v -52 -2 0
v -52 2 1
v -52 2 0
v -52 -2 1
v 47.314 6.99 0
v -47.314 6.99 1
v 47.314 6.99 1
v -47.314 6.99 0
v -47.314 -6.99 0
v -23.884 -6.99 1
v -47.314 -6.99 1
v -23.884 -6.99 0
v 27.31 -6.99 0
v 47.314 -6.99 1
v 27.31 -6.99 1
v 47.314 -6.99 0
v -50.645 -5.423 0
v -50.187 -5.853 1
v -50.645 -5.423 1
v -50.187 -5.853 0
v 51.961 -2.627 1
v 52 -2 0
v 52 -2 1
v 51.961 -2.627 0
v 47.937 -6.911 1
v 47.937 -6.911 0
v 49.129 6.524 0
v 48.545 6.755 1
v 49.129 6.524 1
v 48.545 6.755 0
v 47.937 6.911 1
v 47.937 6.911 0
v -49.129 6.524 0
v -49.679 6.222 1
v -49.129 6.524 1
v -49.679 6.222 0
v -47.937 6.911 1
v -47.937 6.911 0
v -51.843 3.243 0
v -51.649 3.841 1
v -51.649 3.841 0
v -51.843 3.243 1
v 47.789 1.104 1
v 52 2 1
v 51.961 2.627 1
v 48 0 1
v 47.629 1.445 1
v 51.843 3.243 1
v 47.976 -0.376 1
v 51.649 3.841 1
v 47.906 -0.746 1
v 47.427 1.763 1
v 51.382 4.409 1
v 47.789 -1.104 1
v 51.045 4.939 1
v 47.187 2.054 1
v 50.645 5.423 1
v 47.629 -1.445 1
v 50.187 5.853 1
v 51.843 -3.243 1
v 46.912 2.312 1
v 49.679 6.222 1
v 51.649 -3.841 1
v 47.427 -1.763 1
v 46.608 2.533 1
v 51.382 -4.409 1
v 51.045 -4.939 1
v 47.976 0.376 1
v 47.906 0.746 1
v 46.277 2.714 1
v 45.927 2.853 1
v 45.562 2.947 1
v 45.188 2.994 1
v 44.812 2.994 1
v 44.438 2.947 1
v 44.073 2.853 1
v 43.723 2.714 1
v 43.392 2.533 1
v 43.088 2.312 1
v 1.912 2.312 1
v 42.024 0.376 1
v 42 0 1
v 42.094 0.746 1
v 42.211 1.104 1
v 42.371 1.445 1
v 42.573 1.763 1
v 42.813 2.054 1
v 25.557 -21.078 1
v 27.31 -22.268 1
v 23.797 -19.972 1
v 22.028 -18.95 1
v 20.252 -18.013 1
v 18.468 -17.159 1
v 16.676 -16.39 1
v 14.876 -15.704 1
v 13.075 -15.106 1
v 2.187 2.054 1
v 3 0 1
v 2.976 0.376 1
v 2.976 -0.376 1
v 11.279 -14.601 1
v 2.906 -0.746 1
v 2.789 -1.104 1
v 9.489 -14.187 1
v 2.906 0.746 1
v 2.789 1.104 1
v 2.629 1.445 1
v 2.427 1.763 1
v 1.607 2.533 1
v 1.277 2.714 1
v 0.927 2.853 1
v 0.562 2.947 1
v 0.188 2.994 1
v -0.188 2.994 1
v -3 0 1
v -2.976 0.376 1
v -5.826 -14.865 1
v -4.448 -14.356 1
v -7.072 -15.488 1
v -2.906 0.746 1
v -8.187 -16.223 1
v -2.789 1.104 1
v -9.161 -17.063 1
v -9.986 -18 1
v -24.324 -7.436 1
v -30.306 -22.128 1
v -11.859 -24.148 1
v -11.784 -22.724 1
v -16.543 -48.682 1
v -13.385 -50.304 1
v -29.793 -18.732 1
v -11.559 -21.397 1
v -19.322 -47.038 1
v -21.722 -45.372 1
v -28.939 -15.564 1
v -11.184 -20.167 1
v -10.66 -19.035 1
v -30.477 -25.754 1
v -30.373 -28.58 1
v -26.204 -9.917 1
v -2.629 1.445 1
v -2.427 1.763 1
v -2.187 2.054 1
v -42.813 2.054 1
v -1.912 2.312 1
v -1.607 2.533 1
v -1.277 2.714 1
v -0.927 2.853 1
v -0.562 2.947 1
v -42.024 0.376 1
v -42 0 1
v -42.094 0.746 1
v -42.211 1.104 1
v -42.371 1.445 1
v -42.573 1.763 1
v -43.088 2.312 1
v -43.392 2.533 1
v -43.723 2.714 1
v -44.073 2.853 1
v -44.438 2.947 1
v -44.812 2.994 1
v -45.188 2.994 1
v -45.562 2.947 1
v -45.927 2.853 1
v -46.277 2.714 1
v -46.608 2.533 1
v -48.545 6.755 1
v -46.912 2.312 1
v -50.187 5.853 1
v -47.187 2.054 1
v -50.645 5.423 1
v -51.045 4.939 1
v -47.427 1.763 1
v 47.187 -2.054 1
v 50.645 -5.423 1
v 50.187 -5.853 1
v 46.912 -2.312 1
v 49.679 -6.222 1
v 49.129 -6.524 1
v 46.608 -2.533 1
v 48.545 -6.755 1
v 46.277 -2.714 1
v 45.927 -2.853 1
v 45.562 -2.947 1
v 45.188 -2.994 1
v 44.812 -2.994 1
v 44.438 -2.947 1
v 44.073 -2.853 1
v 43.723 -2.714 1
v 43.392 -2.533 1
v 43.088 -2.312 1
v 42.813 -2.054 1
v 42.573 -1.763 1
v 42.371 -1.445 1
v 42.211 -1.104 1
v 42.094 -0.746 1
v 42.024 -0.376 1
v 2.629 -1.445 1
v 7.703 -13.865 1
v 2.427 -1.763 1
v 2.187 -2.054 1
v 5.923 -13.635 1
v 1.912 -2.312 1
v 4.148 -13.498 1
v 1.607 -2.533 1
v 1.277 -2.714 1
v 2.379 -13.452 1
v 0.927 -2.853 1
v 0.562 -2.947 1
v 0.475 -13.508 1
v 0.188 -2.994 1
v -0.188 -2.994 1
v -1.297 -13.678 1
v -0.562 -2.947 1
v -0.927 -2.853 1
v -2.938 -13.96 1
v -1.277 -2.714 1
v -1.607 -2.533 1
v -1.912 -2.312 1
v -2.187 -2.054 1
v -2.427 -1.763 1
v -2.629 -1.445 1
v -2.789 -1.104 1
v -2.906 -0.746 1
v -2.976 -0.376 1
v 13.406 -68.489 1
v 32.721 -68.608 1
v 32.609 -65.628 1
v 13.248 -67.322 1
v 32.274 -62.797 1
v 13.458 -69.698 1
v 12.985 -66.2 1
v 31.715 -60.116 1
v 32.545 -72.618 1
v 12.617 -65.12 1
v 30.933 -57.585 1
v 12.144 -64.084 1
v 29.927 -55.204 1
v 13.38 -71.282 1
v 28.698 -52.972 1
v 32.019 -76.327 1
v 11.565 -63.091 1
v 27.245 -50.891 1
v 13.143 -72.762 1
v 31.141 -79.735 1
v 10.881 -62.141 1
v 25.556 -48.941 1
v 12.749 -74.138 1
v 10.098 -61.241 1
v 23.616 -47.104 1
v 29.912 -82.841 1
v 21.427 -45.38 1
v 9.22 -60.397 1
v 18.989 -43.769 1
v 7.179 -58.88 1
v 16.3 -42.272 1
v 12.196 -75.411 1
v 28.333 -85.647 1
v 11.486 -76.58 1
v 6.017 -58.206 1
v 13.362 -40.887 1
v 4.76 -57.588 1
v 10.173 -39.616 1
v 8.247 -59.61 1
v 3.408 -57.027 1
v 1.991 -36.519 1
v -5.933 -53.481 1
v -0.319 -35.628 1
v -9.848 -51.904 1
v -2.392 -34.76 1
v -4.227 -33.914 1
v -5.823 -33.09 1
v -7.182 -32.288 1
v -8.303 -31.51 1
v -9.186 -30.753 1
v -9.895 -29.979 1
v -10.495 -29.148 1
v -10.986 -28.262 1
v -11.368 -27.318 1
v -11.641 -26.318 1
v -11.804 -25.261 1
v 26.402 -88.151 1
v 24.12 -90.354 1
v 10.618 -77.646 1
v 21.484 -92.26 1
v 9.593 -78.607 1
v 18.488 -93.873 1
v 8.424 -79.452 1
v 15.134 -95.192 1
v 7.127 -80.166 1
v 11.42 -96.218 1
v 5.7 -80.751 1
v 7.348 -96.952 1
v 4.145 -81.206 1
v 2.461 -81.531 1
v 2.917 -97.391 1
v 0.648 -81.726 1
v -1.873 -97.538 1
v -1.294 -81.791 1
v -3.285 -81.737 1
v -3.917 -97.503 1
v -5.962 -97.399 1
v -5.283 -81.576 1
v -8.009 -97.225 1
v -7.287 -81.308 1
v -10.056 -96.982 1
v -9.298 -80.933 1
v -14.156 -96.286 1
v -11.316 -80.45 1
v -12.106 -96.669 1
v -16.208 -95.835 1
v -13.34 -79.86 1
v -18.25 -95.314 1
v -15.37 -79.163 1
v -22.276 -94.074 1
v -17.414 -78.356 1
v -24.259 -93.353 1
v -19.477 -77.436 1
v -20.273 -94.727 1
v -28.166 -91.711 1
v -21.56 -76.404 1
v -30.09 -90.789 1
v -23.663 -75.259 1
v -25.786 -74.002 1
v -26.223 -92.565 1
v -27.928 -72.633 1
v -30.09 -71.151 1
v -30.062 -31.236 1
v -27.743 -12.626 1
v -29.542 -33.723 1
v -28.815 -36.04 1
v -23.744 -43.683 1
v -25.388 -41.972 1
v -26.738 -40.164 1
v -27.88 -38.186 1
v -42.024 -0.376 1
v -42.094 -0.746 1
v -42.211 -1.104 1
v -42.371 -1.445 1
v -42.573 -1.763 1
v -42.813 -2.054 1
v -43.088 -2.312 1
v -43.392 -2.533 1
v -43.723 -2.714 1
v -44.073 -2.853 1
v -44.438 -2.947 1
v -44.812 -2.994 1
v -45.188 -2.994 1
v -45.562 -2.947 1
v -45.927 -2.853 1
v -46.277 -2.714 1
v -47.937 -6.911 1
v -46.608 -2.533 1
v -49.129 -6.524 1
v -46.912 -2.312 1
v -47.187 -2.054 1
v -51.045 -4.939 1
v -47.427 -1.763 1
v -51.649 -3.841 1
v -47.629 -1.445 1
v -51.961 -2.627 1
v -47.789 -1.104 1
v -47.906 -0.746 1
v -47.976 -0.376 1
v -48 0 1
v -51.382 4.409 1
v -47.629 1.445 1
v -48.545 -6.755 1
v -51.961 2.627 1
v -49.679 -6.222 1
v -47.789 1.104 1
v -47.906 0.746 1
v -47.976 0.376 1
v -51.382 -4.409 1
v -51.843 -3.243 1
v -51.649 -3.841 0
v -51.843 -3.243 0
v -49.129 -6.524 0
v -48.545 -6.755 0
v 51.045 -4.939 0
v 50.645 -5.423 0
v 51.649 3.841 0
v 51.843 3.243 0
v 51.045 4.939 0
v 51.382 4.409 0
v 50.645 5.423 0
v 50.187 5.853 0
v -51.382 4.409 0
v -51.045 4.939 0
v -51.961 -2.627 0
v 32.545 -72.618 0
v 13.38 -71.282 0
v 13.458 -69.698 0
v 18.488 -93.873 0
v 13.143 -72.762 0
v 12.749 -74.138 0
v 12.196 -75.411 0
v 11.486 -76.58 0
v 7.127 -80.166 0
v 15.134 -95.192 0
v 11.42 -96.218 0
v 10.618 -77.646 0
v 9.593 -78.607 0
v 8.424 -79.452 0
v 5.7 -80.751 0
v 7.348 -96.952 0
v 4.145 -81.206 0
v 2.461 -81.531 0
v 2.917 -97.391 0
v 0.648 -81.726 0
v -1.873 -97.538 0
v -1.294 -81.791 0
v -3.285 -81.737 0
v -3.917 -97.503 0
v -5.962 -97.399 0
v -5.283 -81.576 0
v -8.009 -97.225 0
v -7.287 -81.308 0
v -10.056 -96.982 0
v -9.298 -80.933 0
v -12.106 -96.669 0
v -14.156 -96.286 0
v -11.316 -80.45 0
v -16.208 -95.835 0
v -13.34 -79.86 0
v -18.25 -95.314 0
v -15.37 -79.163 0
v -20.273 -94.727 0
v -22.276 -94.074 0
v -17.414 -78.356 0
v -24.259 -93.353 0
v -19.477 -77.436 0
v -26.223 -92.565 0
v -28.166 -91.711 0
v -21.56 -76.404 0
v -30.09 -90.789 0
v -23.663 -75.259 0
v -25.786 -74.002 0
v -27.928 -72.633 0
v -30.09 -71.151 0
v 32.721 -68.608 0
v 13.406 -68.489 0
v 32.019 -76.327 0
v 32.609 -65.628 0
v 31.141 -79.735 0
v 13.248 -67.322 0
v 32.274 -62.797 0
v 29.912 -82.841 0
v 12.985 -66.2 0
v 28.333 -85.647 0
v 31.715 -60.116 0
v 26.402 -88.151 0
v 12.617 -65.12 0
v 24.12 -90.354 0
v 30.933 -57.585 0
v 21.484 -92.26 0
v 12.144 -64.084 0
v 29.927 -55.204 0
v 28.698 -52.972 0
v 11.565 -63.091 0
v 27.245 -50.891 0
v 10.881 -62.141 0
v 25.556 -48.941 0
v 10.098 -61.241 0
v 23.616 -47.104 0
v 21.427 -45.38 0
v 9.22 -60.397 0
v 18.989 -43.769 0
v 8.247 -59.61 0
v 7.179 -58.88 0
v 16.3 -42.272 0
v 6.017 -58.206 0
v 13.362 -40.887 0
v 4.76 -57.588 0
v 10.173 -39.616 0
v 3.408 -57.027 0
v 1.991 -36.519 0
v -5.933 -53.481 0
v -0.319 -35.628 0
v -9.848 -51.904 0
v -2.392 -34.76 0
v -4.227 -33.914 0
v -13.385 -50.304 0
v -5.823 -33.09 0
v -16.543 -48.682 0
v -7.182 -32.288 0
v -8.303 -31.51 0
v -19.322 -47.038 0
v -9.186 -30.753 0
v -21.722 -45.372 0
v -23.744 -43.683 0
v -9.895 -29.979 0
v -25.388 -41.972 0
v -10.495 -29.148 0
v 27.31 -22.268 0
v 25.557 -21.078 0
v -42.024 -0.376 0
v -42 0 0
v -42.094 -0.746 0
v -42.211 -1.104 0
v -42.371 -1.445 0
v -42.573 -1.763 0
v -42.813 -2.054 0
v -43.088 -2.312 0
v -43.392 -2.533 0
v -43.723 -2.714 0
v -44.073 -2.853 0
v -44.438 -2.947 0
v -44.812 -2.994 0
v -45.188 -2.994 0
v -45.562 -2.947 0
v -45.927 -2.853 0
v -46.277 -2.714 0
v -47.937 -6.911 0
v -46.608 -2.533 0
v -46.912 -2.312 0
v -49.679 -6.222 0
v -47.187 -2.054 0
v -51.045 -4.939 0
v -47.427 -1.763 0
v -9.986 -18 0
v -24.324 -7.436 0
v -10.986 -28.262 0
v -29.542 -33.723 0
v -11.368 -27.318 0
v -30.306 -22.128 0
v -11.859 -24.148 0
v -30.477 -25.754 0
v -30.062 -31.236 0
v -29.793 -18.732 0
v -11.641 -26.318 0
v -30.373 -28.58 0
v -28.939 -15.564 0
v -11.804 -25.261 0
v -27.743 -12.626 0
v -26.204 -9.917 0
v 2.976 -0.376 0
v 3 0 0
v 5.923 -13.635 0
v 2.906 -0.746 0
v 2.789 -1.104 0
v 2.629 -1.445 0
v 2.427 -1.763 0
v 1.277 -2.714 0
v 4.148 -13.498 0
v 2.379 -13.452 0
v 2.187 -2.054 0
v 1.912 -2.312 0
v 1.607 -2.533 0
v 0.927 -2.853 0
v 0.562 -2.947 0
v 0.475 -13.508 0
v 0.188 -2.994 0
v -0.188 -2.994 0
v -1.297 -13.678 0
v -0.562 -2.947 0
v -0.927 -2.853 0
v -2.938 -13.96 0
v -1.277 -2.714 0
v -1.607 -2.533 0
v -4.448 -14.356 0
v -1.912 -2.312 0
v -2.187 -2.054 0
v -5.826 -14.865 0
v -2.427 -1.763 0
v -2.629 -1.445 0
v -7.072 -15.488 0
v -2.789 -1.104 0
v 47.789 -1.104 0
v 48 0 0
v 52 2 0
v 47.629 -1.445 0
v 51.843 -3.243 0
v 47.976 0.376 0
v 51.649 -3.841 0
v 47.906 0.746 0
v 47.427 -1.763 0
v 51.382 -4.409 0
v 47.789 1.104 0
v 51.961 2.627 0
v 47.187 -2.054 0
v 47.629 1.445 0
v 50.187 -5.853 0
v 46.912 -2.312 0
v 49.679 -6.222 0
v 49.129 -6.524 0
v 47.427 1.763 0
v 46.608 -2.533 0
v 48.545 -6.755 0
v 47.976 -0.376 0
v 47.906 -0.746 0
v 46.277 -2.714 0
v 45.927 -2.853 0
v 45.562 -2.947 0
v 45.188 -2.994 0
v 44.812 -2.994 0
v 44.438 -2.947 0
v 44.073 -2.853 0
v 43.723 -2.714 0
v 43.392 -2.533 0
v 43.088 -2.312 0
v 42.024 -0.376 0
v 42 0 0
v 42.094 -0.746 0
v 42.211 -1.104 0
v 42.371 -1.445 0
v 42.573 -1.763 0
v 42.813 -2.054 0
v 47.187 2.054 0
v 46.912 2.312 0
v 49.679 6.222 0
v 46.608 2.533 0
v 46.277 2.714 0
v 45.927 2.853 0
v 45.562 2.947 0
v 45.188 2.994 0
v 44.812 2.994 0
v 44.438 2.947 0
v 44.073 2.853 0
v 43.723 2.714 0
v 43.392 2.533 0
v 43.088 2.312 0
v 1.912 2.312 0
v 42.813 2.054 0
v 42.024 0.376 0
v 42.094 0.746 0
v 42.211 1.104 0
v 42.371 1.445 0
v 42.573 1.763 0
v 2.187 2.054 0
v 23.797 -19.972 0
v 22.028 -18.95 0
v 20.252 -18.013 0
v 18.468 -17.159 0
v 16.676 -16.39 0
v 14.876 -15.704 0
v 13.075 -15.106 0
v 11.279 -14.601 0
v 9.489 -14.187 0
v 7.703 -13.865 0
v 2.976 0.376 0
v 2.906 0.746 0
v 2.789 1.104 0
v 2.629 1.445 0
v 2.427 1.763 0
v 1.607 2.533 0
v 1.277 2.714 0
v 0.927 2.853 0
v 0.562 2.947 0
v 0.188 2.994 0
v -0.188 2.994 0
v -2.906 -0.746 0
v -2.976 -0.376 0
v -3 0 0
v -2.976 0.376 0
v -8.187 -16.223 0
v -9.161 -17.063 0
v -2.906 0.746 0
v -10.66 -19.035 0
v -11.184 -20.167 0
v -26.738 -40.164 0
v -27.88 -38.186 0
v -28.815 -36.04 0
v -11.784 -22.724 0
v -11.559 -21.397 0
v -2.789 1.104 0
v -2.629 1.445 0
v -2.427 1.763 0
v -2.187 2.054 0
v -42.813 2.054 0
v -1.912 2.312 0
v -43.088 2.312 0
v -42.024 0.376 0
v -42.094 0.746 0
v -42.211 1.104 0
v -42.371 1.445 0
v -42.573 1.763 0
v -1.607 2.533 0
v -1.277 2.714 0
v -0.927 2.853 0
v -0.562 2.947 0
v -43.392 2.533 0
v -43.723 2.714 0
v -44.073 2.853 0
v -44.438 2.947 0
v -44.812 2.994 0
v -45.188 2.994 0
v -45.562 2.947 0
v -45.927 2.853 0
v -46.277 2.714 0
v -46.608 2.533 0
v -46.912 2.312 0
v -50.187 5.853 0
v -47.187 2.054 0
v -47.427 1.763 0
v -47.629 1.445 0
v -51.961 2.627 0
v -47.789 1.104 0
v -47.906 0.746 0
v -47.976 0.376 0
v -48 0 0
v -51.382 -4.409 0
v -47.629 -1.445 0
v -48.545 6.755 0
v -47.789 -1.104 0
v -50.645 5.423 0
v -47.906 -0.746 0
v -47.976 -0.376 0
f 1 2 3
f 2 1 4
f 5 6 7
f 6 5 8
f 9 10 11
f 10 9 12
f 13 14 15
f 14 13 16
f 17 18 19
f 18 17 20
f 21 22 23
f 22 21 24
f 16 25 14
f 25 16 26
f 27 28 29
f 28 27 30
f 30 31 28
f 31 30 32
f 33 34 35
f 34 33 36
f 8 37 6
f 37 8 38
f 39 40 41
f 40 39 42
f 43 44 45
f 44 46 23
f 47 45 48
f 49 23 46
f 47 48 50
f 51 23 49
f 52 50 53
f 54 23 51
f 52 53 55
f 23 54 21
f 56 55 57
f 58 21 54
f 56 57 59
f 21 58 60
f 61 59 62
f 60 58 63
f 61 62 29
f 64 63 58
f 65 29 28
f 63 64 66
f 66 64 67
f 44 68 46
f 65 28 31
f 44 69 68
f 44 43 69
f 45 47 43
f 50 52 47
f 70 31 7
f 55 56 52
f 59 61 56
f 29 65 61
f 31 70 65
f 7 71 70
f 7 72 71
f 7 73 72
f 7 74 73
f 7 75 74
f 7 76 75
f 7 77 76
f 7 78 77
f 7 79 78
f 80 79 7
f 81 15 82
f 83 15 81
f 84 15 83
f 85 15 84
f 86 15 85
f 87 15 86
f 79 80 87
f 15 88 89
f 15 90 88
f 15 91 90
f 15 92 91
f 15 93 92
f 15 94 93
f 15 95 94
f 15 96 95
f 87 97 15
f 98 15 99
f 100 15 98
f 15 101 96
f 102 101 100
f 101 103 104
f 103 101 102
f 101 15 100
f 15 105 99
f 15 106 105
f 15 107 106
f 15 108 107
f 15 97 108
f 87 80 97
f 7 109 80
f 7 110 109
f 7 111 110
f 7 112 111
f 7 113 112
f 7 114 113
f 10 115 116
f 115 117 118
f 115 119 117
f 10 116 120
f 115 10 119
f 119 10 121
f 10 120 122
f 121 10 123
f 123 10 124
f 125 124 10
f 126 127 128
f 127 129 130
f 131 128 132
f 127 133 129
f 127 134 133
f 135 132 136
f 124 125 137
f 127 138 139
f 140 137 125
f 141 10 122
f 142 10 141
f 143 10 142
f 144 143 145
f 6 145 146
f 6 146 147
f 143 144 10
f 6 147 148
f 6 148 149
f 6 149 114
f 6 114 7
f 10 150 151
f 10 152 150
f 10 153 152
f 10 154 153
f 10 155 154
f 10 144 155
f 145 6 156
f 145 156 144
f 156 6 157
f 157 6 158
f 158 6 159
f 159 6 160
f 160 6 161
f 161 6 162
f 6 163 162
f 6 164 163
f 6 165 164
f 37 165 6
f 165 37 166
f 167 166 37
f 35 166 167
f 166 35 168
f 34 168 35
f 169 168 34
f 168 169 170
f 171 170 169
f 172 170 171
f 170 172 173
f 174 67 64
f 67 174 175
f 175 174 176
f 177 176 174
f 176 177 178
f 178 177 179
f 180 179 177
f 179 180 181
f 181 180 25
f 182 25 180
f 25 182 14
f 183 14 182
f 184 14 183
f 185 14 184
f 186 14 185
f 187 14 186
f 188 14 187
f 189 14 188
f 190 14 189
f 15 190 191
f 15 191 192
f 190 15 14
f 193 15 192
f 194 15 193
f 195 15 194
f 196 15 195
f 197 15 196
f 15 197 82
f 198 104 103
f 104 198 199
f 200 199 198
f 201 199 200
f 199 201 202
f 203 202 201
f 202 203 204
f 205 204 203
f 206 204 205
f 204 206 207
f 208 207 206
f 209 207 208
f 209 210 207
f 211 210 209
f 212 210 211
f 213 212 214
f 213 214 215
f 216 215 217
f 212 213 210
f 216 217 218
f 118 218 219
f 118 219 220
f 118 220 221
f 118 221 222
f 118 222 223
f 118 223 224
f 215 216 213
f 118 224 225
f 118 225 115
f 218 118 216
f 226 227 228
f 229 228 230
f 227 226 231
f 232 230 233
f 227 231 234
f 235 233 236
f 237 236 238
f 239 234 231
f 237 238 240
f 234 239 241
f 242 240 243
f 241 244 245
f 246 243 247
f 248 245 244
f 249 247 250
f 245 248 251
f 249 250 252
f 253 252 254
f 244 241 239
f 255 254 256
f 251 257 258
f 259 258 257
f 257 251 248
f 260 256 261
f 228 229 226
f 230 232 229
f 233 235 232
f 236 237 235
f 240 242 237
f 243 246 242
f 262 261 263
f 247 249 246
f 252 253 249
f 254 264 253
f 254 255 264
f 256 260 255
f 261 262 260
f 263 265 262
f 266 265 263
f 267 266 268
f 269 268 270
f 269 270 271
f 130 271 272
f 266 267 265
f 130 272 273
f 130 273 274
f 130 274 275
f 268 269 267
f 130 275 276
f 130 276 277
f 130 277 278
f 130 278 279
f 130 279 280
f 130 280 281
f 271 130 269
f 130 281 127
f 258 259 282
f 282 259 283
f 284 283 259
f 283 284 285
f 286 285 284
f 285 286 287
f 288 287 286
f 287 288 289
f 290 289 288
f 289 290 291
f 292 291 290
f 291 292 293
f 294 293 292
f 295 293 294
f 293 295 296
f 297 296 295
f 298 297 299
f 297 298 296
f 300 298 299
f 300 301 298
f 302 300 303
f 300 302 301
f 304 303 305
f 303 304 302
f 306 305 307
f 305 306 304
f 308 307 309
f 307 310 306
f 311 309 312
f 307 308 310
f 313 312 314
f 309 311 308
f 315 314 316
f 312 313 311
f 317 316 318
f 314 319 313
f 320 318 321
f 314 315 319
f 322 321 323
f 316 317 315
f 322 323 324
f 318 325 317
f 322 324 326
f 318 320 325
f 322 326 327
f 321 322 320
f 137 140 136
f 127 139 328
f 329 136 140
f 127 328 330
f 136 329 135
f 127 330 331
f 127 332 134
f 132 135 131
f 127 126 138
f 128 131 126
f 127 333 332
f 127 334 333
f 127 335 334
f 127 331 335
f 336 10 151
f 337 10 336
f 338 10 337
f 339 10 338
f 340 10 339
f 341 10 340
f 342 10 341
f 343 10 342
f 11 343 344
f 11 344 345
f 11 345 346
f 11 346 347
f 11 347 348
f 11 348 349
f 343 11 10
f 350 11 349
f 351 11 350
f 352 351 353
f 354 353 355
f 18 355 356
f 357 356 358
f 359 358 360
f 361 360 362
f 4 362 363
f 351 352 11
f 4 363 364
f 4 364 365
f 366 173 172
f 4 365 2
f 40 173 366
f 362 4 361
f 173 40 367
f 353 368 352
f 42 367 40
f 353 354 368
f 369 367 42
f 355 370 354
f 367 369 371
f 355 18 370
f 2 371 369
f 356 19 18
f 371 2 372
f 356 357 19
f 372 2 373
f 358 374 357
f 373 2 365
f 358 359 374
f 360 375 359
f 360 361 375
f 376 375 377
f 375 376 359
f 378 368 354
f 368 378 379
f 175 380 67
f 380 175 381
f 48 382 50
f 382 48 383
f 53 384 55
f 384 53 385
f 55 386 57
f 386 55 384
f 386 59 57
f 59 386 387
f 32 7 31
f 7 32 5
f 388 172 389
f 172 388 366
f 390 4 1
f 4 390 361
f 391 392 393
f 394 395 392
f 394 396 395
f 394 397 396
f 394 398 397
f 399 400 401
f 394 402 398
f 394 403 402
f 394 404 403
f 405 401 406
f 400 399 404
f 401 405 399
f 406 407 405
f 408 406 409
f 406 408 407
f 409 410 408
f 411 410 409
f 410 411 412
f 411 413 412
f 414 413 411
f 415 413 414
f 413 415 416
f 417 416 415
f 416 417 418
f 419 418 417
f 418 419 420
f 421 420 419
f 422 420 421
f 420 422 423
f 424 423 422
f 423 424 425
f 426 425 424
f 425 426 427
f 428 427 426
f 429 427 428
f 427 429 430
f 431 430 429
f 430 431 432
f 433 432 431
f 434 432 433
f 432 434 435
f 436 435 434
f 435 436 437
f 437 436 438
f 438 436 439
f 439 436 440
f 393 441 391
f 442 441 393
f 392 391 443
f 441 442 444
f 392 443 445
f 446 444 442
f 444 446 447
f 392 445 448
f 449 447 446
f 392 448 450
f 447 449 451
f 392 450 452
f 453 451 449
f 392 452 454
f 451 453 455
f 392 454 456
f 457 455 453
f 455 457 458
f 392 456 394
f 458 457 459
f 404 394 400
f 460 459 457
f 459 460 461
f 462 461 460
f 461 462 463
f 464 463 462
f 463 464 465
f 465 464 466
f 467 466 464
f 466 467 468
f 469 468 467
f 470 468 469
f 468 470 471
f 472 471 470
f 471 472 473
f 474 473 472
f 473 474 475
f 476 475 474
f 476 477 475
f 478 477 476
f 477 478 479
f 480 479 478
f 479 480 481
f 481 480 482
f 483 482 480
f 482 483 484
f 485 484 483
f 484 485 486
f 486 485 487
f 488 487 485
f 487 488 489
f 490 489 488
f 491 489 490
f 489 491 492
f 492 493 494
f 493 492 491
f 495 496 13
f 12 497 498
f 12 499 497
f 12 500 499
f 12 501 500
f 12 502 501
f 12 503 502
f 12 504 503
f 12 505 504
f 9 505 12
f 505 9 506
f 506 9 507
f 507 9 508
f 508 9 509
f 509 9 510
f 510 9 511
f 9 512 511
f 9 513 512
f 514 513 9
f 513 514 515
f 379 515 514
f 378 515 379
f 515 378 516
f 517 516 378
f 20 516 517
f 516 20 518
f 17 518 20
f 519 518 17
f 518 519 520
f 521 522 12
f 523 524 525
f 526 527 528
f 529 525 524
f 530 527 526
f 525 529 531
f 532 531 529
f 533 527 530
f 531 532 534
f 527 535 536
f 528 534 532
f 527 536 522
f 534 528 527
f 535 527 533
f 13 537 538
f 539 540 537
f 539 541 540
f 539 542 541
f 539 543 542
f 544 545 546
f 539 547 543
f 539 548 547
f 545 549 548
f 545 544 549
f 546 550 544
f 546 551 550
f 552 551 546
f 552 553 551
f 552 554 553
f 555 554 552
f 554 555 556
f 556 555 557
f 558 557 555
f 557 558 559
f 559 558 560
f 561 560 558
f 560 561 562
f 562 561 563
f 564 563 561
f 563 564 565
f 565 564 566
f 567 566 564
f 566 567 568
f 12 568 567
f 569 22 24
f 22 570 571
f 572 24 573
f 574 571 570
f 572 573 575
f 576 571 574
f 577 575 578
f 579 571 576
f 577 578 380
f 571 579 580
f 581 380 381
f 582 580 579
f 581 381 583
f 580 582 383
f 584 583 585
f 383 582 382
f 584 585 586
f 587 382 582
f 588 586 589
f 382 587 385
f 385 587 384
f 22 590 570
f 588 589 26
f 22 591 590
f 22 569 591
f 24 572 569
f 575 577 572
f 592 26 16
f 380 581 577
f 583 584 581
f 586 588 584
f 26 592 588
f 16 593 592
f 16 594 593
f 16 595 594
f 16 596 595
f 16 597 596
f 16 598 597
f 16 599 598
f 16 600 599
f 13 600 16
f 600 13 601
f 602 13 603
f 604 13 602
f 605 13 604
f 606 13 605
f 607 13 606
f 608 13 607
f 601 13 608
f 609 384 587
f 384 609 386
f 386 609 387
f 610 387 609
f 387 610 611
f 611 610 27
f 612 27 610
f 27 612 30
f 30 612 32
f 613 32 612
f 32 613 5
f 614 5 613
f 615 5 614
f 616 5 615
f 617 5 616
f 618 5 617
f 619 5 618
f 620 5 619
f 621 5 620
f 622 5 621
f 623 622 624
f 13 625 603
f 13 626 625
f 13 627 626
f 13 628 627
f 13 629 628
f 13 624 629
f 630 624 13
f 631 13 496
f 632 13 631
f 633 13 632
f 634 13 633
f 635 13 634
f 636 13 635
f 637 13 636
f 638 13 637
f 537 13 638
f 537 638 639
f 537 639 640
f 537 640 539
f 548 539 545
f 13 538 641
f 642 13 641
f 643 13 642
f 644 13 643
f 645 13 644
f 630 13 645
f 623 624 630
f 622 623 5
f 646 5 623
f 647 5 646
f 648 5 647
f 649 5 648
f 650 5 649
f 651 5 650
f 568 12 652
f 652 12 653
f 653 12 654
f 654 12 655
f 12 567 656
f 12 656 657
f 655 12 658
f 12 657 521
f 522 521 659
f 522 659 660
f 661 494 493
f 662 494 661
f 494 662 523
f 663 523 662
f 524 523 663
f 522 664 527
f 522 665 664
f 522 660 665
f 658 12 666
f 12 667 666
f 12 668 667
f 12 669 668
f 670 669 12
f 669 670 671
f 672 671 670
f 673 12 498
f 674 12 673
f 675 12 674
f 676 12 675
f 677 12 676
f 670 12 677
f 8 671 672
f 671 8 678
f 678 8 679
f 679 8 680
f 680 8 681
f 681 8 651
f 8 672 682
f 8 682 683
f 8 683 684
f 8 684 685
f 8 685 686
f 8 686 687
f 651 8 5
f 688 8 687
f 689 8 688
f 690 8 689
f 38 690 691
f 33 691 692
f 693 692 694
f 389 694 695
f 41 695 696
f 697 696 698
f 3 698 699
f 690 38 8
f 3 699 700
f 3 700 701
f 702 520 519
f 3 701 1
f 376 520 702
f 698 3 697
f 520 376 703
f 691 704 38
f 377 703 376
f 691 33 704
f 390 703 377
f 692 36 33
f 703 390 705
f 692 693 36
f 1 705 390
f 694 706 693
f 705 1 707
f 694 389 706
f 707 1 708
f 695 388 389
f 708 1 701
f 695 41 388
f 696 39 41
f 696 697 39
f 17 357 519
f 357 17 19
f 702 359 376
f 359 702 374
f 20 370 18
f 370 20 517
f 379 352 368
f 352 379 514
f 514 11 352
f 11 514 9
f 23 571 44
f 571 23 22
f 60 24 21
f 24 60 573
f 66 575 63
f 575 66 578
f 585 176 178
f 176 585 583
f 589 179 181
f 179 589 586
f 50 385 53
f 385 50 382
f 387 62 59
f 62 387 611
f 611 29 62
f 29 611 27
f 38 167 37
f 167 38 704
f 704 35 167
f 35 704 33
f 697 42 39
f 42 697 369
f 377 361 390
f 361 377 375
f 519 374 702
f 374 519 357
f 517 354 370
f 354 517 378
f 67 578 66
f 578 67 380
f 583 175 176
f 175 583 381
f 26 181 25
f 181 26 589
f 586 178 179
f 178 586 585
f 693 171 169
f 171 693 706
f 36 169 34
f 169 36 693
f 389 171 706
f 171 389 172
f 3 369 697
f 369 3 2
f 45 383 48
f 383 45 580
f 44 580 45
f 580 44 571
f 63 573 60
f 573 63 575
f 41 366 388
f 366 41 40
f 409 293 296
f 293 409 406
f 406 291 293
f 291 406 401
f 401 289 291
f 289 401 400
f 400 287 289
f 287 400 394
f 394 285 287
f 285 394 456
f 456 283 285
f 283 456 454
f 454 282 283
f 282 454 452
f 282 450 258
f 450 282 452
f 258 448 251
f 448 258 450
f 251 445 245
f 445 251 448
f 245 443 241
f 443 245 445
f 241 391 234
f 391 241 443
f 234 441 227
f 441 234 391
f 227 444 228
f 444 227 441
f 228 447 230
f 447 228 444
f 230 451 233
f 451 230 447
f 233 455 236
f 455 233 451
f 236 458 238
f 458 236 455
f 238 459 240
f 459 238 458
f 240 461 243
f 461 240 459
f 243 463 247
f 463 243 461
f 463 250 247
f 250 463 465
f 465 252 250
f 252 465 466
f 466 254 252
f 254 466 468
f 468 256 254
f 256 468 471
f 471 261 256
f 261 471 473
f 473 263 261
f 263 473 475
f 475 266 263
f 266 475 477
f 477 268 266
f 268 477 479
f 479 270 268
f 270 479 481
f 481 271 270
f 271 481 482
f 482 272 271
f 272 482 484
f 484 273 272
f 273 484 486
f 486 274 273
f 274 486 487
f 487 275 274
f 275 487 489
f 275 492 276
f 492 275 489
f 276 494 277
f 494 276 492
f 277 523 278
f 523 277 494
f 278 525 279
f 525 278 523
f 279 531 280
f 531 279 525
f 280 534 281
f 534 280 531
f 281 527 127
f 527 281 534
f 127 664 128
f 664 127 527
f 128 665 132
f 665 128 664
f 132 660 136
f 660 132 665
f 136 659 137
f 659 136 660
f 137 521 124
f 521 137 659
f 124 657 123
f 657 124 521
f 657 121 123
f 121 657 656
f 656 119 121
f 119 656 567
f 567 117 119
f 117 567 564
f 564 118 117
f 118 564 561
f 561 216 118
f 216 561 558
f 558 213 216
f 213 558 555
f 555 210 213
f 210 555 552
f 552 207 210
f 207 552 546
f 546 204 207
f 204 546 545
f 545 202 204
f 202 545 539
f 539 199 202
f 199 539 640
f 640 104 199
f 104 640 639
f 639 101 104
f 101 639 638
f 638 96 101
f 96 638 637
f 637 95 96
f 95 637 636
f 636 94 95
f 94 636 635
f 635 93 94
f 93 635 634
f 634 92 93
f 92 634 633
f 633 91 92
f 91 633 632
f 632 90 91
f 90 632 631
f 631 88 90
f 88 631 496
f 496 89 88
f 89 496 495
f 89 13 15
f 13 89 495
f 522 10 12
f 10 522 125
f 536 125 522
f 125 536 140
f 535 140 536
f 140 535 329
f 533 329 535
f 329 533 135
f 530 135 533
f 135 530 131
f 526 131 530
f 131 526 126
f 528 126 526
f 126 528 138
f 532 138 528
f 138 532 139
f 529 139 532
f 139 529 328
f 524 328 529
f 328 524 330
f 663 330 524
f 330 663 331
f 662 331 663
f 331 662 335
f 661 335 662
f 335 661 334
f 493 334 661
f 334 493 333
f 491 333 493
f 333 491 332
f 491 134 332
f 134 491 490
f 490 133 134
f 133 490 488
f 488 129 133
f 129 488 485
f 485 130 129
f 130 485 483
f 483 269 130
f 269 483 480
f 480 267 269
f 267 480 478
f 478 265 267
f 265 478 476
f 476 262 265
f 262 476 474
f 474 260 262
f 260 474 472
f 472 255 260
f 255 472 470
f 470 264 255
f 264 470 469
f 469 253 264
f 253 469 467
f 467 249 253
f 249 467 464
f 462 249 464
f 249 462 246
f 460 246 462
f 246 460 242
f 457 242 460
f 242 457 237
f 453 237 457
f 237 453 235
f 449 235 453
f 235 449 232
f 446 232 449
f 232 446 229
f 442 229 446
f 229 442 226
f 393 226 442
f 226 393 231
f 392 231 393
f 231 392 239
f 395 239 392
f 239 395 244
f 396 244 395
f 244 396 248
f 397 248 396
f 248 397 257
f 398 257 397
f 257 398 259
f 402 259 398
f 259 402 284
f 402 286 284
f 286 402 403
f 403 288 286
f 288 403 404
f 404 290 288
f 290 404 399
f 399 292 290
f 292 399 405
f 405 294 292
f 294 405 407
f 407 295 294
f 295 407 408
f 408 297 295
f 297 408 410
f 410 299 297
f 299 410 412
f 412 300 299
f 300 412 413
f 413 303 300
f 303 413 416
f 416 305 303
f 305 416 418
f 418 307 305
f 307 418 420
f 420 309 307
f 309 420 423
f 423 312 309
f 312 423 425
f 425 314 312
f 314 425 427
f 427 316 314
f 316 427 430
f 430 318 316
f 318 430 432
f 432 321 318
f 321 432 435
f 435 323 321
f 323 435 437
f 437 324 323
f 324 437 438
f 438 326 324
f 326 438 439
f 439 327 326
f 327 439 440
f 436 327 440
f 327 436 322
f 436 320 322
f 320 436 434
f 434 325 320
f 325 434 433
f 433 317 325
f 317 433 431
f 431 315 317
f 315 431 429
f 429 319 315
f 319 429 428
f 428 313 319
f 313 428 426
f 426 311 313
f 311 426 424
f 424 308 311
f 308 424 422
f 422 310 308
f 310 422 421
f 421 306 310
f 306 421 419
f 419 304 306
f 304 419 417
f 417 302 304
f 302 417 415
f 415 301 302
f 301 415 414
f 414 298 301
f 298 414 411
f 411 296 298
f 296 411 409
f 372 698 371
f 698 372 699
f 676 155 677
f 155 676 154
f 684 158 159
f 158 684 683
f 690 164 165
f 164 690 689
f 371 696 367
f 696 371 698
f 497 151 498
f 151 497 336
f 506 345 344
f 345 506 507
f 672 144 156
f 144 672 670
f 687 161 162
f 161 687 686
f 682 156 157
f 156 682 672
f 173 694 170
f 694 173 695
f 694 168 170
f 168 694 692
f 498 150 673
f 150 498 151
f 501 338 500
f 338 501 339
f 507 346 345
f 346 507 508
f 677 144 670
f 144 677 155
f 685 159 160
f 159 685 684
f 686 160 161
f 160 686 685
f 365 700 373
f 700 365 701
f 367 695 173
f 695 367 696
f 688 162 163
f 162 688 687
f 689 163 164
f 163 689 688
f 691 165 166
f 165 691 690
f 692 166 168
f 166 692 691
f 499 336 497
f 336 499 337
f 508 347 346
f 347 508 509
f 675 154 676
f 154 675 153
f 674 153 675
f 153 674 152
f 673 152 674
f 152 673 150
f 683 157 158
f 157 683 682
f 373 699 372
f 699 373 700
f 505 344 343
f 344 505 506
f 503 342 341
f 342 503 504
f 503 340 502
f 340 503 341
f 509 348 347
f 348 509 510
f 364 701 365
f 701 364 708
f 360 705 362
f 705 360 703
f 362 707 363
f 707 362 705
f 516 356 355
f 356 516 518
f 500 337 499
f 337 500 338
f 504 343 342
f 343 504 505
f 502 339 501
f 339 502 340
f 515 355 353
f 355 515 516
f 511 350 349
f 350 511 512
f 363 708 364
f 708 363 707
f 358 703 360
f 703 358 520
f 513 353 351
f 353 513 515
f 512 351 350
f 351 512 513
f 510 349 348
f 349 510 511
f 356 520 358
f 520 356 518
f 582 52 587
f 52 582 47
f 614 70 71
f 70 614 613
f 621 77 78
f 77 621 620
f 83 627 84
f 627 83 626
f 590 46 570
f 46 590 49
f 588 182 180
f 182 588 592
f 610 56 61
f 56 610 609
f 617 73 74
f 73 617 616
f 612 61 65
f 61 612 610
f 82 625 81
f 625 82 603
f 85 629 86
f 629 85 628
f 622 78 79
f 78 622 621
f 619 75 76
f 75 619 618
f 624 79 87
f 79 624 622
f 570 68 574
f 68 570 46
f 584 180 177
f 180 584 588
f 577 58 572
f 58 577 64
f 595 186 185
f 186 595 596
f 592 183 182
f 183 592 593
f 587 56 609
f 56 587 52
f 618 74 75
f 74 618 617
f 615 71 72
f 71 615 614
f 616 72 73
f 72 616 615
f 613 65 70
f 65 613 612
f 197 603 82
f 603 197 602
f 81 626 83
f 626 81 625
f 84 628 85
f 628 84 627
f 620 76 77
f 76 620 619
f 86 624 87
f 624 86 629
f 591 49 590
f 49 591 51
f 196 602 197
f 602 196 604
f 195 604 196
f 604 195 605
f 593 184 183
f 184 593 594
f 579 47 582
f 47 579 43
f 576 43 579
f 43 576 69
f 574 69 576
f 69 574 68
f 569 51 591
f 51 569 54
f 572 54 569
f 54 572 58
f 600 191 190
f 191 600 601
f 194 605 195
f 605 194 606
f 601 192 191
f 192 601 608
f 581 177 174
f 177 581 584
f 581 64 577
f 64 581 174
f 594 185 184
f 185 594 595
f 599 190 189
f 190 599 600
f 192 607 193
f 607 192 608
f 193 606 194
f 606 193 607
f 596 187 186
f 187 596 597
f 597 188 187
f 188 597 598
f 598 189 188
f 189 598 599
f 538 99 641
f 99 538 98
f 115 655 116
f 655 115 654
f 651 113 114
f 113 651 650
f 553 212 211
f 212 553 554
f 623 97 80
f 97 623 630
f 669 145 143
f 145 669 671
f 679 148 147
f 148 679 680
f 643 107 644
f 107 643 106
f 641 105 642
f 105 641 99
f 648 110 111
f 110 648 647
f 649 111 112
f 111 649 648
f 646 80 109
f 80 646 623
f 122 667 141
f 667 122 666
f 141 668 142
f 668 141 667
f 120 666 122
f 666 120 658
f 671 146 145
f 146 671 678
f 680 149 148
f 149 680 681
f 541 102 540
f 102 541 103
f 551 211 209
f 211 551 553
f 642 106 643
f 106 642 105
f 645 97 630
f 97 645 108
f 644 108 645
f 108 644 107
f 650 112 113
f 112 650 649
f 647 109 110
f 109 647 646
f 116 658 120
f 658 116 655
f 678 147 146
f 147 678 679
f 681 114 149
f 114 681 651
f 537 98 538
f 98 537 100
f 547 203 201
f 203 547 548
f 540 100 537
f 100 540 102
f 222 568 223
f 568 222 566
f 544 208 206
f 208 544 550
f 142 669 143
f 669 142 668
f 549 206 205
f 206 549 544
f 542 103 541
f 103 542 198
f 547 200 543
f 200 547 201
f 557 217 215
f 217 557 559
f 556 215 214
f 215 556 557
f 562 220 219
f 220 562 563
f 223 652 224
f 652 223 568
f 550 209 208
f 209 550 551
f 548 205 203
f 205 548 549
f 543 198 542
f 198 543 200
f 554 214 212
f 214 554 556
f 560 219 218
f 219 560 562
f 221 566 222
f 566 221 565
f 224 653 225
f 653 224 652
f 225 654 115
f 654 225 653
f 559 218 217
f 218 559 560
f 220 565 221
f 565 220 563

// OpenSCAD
$fn = 50;


difference() {
	union() {
		translate(v = [0, 0, 0]) {
			rotate(a = [0, 0, 0]) {
				hull() {
					translate(v = [-47.0000000000, 2.0000000000, 0]) {
						rotate(a = [0, 0, 0]) {
							translate(v = [0, 0, 0]) {
								rotate(a = [0, 0, 0]) {
									cylinder(h = 1, r = 5);
								}
							}
						}
					}
					translate(v = [47.0000000000, 2.0000000000, 0]) {
						rotate(a = [0, 0, 0]) {
							translate(v = [0, 0, 0]) {
								rotate(a = [0, 0, 0]) {
									cylinder(h = 1, r = 5);
								}
							}
						}
					}
					translate(v = [-47.0000000000, -2.0000000000, 0]) {
						rotate(a = [0, 0, 0]) {
							translate(v = [0, 0, 0]) {
								rotate(a = [0, 0, 0]) {
									cylinder(h = 1, r = 5);
								}
							}
						}
					}
					translate(v = [47.0000000000, -2.0000000000, 0]) {
						rotate(a = [0, 0, 0]) {
							translate(v = [0, 0, 0]) {
								rotate(a = [0, 0, 0]) {
									cylinder(h = 1, r = 5);
								}
							}
						}
					}
				}
			}
		}
		translate(v = [0, 0, 0]) {
			rotate(a = [0, 0, 0]) {
				linear_extrude(height = 1) {
					text(font = "DejaVu Sans Mono:style=Bold", halign = "center", size = 95.0000000000, text = "S", valign = "top");
				}
			}
		}
	}
	union() {
		translate(v = [-45.0000000000, 0.0000000000, -125.0000000000]) {
			rotate(a = [0, 0, 0]) {
				cylinder(h = 250, r = 3.0000000000);
			}
		}
		translate(v = [45.0000000000, 0.0000000000, -125.0000000000]) {
			rotate(a = [0, 0, 0]) {
				cylinder(h = 250, r = 3.0000000000);
			}
		}
		translate(v = [45.0000000000, 0.0000000000, -125.0000000000]) {
			rotate(a = [0, 0, 0]) {
				cylinder(h = 250, r = 3.0000000000);
			}
		}
		translate(v = [0, 0, -125.0000000000]) {
			rotate(a = [0, 0, 0]) {
				cylinder(h = 250, r = 3.0000000000);
			}
		}
	}
}
